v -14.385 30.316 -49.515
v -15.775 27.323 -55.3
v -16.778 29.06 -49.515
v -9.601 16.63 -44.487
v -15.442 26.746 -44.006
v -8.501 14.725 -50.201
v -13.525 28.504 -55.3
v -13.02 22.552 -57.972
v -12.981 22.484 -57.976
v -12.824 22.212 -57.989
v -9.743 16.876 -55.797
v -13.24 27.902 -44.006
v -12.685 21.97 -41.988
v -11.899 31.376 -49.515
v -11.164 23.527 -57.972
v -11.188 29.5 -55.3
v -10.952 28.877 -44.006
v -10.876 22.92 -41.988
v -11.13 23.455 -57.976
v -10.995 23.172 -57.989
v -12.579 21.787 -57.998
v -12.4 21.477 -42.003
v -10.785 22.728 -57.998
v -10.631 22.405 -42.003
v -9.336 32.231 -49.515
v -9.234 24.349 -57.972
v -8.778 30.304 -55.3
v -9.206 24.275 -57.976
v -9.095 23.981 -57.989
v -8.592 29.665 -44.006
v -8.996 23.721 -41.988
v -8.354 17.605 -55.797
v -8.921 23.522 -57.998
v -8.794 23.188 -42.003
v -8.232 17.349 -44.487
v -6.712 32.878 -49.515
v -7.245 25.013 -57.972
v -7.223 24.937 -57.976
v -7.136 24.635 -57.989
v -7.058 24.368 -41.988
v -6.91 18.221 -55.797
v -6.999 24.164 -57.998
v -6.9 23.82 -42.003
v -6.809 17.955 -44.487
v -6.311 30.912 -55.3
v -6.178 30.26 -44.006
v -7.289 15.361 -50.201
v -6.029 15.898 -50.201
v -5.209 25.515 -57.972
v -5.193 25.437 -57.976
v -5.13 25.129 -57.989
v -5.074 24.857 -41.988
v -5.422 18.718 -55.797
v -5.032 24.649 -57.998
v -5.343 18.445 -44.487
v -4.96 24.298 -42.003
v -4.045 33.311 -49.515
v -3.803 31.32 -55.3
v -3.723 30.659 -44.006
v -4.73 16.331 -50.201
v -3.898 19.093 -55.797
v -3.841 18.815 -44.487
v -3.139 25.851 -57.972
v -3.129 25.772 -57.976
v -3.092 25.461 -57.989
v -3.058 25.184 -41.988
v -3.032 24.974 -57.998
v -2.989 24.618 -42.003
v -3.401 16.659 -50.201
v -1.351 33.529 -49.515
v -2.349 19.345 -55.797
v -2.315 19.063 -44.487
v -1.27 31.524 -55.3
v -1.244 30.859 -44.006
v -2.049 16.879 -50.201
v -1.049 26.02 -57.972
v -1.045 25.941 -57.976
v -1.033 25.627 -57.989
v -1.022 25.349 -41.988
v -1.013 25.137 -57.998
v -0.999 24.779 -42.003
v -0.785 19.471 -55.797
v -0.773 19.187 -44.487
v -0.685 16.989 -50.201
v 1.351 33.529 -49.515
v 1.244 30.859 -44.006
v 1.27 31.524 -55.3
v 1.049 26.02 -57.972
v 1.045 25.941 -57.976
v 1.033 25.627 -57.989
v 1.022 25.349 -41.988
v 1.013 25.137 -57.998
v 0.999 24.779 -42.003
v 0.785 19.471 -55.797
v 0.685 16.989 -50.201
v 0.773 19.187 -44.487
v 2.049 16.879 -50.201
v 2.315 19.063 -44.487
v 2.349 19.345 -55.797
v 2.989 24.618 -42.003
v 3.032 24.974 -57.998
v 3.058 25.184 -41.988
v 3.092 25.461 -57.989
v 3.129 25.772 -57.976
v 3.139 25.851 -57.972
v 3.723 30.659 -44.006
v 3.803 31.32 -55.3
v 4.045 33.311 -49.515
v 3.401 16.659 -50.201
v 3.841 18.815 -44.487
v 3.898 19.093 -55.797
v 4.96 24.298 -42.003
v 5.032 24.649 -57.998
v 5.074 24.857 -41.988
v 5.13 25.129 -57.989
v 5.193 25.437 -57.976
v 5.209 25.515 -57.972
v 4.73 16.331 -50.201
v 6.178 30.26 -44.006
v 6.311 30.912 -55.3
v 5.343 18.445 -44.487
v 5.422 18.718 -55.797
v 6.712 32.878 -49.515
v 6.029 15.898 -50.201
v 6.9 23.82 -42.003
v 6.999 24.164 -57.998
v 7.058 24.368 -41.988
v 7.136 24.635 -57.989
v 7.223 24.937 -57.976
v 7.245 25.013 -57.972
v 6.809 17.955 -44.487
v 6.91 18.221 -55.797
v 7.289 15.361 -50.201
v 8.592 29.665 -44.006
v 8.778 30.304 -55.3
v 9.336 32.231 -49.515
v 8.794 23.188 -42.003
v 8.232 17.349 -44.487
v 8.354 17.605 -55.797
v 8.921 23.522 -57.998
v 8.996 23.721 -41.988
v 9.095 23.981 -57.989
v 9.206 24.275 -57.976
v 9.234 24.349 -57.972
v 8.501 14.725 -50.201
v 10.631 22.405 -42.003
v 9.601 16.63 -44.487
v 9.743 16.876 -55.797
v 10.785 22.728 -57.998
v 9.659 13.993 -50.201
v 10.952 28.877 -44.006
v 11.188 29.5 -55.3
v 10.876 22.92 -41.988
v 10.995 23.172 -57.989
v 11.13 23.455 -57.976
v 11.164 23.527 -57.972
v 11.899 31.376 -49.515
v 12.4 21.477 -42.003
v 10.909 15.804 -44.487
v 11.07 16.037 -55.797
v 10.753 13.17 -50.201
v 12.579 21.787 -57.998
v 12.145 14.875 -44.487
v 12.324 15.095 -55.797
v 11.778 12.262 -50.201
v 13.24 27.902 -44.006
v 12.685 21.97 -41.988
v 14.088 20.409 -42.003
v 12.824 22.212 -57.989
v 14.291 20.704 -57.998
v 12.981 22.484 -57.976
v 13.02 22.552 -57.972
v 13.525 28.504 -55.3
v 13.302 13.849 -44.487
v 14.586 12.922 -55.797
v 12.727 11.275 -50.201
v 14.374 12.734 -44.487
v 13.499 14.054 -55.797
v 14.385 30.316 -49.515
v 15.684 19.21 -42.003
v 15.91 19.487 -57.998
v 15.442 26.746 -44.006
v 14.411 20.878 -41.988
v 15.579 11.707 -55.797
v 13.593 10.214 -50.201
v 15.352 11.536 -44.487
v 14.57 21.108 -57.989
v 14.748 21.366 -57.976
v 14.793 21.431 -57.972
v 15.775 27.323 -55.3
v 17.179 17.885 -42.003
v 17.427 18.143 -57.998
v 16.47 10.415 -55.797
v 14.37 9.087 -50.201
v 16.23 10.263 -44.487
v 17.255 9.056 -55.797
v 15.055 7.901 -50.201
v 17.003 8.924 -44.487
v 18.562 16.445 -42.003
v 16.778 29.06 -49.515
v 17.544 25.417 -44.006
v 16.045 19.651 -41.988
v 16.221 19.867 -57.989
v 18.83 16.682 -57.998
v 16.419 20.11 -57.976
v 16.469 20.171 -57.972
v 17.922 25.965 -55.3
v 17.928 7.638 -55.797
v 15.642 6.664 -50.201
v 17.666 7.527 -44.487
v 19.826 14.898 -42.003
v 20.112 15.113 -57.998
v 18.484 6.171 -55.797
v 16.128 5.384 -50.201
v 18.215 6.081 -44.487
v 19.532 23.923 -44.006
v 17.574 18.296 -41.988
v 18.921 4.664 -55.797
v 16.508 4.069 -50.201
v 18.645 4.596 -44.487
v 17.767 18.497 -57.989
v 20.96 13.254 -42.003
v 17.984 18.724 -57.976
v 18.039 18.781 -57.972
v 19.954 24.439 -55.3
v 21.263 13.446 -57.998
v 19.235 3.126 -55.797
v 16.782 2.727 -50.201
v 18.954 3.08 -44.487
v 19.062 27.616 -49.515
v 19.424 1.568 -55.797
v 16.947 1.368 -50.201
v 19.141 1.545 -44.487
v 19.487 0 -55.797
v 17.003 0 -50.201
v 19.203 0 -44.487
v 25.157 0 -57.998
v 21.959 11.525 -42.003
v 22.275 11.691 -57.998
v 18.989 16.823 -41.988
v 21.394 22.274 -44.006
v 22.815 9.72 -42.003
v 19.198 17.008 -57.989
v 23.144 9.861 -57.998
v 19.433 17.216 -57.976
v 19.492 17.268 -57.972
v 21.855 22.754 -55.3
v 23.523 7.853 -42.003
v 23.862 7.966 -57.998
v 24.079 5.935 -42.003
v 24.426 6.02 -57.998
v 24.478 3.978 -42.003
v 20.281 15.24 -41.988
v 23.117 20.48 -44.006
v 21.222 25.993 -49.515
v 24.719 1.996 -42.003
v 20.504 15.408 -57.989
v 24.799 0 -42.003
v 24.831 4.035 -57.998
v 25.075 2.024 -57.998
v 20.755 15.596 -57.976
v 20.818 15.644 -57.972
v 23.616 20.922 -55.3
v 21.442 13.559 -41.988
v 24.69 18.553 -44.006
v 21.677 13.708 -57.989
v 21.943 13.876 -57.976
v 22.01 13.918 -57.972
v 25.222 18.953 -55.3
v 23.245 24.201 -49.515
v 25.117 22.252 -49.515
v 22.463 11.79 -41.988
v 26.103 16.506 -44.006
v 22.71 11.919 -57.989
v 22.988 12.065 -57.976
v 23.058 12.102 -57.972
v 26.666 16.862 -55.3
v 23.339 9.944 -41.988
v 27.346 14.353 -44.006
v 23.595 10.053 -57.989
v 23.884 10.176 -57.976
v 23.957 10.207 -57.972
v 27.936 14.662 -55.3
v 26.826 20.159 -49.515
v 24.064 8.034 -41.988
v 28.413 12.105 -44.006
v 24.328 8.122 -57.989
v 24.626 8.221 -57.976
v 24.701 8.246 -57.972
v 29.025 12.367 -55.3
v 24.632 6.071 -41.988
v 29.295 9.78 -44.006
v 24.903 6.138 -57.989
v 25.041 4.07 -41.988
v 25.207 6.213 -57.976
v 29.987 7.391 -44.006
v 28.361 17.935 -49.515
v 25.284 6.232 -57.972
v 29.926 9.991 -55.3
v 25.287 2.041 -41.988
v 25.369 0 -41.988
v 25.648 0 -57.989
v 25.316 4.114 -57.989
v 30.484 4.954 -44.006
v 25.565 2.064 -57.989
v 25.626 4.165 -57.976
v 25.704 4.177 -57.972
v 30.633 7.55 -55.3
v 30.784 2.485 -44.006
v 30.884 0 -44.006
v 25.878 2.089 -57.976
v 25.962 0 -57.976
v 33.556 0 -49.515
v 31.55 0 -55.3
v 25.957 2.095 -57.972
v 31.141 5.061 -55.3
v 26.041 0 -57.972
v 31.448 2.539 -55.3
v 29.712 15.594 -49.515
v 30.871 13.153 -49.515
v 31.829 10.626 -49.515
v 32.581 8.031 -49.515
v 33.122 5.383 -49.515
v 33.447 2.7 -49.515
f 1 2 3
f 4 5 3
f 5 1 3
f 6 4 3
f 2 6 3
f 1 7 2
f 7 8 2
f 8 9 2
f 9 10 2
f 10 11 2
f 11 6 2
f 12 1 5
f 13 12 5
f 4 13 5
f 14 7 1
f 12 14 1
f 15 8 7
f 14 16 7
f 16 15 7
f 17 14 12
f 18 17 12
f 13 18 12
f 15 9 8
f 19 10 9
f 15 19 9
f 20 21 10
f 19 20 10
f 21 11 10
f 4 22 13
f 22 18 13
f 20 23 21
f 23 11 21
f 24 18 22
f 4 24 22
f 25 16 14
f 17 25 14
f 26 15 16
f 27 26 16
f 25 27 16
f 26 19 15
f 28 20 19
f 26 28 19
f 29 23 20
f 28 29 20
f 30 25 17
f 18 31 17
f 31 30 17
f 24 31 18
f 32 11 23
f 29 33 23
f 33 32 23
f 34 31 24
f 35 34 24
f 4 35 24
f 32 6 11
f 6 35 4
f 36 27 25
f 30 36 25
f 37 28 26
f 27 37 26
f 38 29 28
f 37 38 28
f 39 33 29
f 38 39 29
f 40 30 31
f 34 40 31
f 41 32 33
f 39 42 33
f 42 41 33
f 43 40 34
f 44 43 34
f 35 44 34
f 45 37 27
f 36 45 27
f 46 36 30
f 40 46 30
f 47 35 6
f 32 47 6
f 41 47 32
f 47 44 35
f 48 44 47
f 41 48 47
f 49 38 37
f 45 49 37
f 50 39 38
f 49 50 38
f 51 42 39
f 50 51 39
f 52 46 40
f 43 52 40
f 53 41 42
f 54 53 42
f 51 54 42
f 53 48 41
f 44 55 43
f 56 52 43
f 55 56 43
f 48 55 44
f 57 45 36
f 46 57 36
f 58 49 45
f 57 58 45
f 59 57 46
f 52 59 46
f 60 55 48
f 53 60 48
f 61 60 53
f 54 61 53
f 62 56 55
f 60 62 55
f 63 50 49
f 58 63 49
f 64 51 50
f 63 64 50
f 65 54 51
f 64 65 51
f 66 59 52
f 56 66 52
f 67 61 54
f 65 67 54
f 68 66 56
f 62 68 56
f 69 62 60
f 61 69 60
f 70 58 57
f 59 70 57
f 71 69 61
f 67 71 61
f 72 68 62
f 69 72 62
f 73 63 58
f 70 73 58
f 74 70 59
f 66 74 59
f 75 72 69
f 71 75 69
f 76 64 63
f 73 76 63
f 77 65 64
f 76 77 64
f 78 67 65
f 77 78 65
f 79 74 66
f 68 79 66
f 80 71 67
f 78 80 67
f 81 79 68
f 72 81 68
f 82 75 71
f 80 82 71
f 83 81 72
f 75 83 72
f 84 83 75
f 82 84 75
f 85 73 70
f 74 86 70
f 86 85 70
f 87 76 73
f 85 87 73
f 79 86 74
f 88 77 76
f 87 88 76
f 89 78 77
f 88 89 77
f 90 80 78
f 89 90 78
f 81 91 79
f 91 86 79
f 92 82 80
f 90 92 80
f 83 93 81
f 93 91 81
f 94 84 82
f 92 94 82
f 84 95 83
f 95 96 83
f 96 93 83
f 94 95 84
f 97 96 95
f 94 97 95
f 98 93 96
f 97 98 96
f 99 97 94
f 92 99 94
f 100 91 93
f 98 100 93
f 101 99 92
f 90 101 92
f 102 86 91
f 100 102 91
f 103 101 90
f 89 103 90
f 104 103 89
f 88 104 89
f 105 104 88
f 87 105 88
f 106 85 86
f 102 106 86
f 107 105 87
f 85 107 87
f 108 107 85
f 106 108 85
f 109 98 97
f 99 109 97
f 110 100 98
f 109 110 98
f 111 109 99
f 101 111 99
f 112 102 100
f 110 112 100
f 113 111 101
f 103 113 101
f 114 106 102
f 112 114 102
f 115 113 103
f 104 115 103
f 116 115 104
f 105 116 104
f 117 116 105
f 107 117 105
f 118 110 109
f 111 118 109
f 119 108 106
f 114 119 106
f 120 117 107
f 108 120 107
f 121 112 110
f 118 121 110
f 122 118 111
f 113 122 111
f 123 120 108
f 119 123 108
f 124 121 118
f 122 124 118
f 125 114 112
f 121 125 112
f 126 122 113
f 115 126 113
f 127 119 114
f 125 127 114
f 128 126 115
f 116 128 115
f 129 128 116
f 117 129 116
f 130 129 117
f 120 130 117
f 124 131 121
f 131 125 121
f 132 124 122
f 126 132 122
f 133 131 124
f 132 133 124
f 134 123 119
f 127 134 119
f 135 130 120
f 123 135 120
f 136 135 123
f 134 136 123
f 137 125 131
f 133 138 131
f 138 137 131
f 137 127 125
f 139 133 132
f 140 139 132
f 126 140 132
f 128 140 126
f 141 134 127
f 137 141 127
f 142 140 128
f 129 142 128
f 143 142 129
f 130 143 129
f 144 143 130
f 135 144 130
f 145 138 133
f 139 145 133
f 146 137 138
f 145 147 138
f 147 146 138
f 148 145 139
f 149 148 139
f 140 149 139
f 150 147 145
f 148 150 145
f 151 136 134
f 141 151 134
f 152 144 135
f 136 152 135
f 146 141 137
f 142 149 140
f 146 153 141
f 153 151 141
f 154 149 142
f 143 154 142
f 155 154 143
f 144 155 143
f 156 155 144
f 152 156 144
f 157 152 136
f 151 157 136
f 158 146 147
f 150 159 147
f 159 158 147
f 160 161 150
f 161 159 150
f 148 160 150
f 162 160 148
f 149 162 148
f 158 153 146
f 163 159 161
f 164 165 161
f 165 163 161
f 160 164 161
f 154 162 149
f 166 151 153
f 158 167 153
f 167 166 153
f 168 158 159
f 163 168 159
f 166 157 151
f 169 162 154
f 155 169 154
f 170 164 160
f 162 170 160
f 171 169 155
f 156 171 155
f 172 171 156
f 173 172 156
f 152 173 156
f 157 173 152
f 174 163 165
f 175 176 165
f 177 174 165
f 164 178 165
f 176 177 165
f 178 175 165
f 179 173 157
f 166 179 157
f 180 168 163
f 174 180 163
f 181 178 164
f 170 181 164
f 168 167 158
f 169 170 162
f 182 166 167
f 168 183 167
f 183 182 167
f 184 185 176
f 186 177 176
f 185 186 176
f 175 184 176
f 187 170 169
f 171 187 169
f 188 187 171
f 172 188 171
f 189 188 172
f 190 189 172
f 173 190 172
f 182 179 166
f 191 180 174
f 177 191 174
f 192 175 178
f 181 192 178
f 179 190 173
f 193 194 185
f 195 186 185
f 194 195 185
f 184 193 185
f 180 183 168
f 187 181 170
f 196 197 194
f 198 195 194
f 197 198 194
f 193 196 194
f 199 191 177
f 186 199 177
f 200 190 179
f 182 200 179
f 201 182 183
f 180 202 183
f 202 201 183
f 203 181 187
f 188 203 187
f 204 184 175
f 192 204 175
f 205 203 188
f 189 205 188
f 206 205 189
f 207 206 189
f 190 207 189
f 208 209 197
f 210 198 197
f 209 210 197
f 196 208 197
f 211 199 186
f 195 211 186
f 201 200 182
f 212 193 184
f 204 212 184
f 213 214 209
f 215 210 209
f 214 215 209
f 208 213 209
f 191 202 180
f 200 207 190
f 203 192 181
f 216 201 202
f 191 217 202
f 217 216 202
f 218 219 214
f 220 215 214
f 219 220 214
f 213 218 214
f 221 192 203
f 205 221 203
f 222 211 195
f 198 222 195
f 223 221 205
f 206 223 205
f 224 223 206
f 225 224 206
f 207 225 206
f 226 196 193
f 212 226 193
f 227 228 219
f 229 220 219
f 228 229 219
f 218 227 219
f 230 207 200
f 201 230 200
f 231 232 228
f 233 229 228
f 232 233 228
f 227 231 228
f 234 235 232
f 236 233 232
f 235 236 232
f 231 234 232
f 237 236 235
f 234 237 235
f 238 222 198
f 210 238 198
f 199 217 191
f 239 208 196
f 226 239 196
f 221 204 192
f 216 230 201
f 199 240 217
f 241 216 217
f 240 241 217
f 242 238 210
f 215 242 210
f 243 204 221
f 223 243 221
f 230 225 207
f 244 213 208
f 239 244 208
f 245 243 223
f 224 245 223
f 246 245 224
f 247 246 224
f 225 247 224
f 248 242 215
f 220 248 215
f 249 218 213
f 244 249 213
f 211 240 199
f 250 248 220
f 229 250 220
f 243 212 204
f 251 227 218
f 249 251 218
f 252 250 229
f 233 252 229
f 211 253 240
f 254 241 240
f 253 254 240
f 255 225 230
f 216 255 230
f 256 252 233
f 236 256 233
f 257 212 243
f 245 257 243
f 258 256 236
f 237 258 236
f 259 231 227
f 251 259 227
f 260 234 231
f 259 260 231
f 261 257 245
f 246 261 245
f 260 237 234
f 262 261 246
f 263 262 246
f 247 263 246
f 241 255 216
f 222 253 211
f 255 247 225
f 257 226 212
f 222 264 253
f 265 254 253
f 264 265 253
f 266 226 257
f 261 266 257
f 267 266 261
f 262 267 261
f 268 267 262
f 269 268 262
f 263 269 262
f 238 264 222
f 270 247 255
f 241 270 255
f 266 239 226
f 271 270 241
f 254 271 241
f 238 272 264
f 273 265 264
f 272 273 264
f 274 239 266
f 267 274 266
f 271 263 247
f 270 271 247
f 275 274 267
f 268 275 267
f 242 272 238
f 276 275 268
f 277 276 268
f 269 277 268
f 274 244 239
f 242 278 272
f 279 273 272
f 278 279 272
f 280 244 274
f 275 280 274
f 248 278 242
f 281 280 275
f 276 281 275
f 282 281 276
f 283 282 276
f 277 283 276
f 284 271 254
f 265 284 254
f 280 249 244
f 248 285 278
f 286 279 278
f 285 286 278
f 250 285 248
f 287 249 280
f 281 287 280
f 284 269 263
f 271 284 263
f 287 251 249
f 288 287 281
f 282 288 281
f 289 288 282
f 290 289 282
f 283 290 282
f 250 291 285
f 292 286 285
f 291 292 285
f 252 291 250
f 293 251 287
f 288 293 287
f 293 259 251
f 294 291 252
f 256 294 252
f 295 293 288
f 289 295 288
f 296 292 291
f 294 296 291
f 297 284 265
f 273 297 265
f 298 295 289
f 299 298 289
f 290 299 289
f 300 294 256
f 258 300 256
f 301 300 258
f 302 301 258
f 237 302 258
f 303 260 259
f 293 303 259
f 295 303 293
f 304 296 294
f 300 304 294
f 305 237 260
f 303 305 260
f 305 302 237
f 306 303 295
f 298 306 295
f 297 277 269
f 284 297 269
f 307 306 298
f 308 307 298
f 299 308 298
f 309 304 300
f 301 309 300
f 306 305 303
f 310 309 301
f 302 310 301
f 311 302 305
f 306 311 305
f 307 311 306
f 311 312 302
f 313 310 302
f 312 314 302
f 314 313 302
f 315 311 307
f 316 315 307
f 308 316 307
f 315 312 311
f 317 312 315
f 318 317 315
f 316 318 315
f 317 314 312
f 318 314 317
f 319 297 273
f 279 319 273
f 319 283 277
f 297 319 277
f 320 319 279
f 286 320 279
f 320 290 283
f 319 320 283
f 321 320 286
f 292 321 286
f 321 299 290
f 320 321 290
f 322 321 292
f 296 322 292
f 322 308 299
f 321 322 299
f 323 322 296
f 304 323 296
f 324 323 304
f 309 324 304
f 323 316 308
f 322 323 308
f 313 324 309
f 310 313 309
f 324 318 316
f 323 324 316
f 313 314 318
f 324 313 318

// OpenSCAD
// Start: lazy_union
default_5_default_5();
// End: lazy_union

// Modules.

// 'PartMaterial undef-default - default 5.0'
module default_5_default_5() {
  // 'None : _combine_solids_and_holes'
  union() {
    // 'offset_ex : _combine_solids_and_holes'
    union() {
      // 'offset_ex'
      polyhedron(points=[[25.64781729, 0.0, -57.98882087], [25.961714750000002, 0.0, -57.97648779], [26.04094706, 0.0, -57.97181521], [31.55004704, 0.0, -55.29970941], [33.556104850000004, 0.0, -49.51472332], [30.88399905, 0.0, -44.00562334], [25.36919932, 0.0, -41.98821032], [24.79921931, 0.0, -42.00251995], [19.20295424, 0.0, -44.486901010000004], [17.00251995, 0.0, -50.20078069], [19.48690101, 0.0, -55.79704576], [25.15706959, 0.0, -57.99845792], [25.56464932149845, 2.063791852399815, -57.98882087], [25.87752890875822, 2.0890501039349108, -57.97648779], [25.95650429279107, 2.0954256560521105, -57.97181521], [31.4477399590981, 2.5387240281600936, -55.29970941], [33.44729274175531, 2.700144616778184, -49.51472332], [30.7838517574975, 2.4851294318041215, -44.00562334], [25.28693482372343, 2.0413724203710952, -41.98821032], [24.718803083265524, 1.9955080847292703, -42.00251995], [19.140684976486817, 1.5451958369171026, -44.486901010000004], [16.947386016860204, 1.3681344399141775, -50.20078069], [19.42371099460542, 1.5680440591971998, -55.79704576], [25.075492965073394, 2.0243030688751897, -57.99845792], [25.315684792183703, 4.114199222694708, -57.98882087], [25.625517362518078, 4.164551916311306, -57.97648779], [25.703723634912986, 4.177261672643725, -57.97181521], [31.141482217070504, 5.060983456808986, -55.29970941], [33.12156210529785, 5.3827777595858, -49.51472332], [30.48405937361155, 4.95414184562035, -44.00562334], [25.040674851719558, 4.069505757257019, -41.98821032], [24.478075933150702, 3.978074533789601, -42.00251995], [18.954281026015824, 3.080370485891357, -44.486901010000004], [16.782341782153853, 2.727396002989121, -50.20078069], [19.23455075991951, 3.125918750962481, -55.79704576], [24.831292146009748, 4.035477755559708, -57.99845792], [24.902538332563918, 6.137924432282259, -57.98882087], [25.207314502861745, 6.213045011440337, -57.97648779], [25.284244465932005, 6.232006544341024, -57.97181521], [30.633260012895033, 7.550420465681294, -55.29970941], [32.58102542879816, 8.030501523080689, -49.51472332], [29.986566166991462, 7.391024748507052, -44.00562334], [24.632016494404564, 6.071246787709258, -41.98821032], [24.078599067598645, 5.93484164298548, -42.00251995], [18.644951289734912, 4.595567750229174, -44.486901010000004], [16.508457621075706, 4.068969356396703, -50.20078069], [18.92064708265097, 4.66352066011403, -55.79704576], [24.426050868828263, 6.020480820459167, -57.99845792], [24.327889355967077, 8.121842846611019, -57.98882087], [24.62563253581173, 8.221244125528598, -57.97648779], [24.700787269226378, 8.246334462180553, -57.97181521], [29.92636936258667, 9.990890100498884, -55.29970941], [31.829188300024356, 10.626144402641362, -49.51472332], [29.294598571986022, 9.779974019730082, -44.00562334], [24.06361005804074, 8.03361345301408, -41.98821032], [23.522963247374346, 7.853119026740437, -42.00251995], [18.21470188968345, 6.08096099424228, -44.486901010000004], [16.127509777508358, 5.384153882136012, -50.20078069], [18.484035748601634, 6.170877848244588, -55.79704576], [23.86239727871533, 7.966438756989332, -57.99845792], [23.59546468151737, 10.053087993471916, -57.98882087], [23.884243892134094, 10.176125316711806, -57.97648779], [23.957135988607696, 10.207181736653888, -57.97181521], [29.025394723268935, 12.366564979194695, -55.29970941], [30.87092667126018, 13.152872658163723, -49.51472332], [28.412644263978656, 12.105496406550278, -44.00562334], [23.33914187648342, 9.94387905232492, -41.98821032], [22.814771983986972, 9.72046592011721, -42.00251995], [17.66632315832106, 7.526916872750954, -44.486901010000004], [15.64196884439906, 6.664420103879793, -50.20078069], [17.92754834981438, 7.638214525568572, -55.79704576], [23.143986885494524, 9.860731281206288, -57.99845792], [22.71001436428308, 11.91913500700781, -57.98882087], [22.98795676167732, 12.065010430315494, -57.97648779], [23.058113487993243, 12.101831520747048, -57.97181521], [27.936179261210217, 14.662037938558909, -55.29970941], [29.712455236883404, 15.594299487325287, -49.51472332], [27.34642305509051, 14.352510003912734, -44.00562334], [22.463310403891317, 11.789654780201015, -41.98821032], [21.95861816953494, 11.524771861952276, -42.00251995], [17.003371542150855, 8.924057807024134, -44.486901010000004], [15.054983741016413, 7.901465003901456, -50.20078069], [17.254793920612123, 9.056014450670116, -55.79704576], [22.275478856242625, 11.691073179190626, -57.99845792], [21.67728088934672, 13.707881856274748, -57.98882087], [21.9425839104161, 13.875649321553068, -57.97648779], [22.009550273282834, 13.917996283573231, -57.97181521], [26.66578695664835, 16.86242195560458, -55.29970941], [28.36128712868805, 17.934591300286364, -49.51472332], [26.102849799003977, 16.506442066388473, -44.00562334], [21.44179574344838, 13.558970072764648, -41.98821032], [20.96005429003823, 13.254335235843666, -42.00251995], [16.23014653679918, 10.26332280197596, -44.486901010000004], [14.370361291000577, 9.087265871331168, -50.20078069], [16.470135531625363, 10.41508264698033, -55.79704576], [21.2625057988033, 13.44559398137393, -57.99845792], [20.503961929585696, 15.407727831556581, -57.98882087], [20.754904982433438, 15.596299302415535, -57.97648779], [20.81824667929068, 15.643897499725739, -57.97181521], [25.222456791168053, 18.95344669562434, -55.29970941], [26.826185190341633, 20.158570406596027, -49.51472332], [24.689989545483105, 18.553323518020587, -44.00562334], [20.281222809715022, 15.240350241401392, -41.98821032], [19.82555641543587, 14.897939159623608, -42.00251995], [15.35166280313658, 11.536026210195896, -44.486901010000004], [13.59254153365116, 10.214132332514406, -50.20078069], [15.578661993604879, 11.706605035728757, -55.79704576], [20.111637232163783, 15.112914947089001, -57.99845792], [19.197666908693606, 17.007648779419025, -57.98882087], [19.432622531327215, 17.21580129750926, -57.97648779], [19.491928766964637, 17.268342037535017, -57.97181521], [23.615549314743834, 20.92155106078693, -55.29970941], [25.11710514698142, 22.25181344833884, -49.51472332], [23.11700523543108, 20.47987954714219, -44.00562334], [18.98911836351499, 16.82289089051897, -41.98821032], [18.562482199787322, 16.444924231143656, -42.00251995], [14.37361764527782, 12.733914061705146, -44.486901010000004], [12.726568928568573, 11.27475622603615, -50.20078069], [14.586154854531287, 12.922205598626435, -55.79704576], [18.830336980603356, 16.68222286006947, -57.99845792], [17.766867651147578, 18.497268598574998, -57.98882087], [17.984312066194384, 18.723652214942007, -57.97648779], [18.039198216916205, 18.78079475082271, -57.97181521], [21.855485938981452, 22.753971139060468, -55.29970941], [23.24513103851659, 24.200744941145643, -49.51472332], [21.394098275702333, 22.27361569862404, -44.00562334], [17.57386219800317, 18.296328636737034, -41.98821032], [17.179023164062528, 17.88525765858798, -42.00251995], [13.302354061378423, 13.84921759411928, -44.486901010000004], [11.778059640397817, 12.26225899895203, -50.20078069], [13.499050904057812, 14.05400069955865, -55.79704576], [17.426914767928753, 18.14334015630665, -57.99845792], [16.22084343917566, 19.86692653288311, -57.98882087], [16.4193664361638, 20.11007306290421, -57.97648779], [16.469476544221035, 20.171446803367274, -57.97181521], [19.95368135026462, 24.438822983079906, -55.29970941], [21.222403335376114, 25.99272531641903, -49.51472332], [19.532442379064523, 23.92289890521057, -44.00562334], [16.044632792491388, 19.65110767086676, -41.98821032], [15.684151570985083, 19.209598326978185, -42.00251995], [12.144819606857643, 14.874703636053399, -44.486901010000004], [10.753165115845645, 13.170236316843686, -50.20078069], [12.324400428459388, 15.094650212990334, -55.79704576], [15.910472325726593, 19.486790929457598, -57.99845792], [14.569620833050811, 21.10773982505836, -57.98882087], [14.747934914165267, 21.36607237018336, -57.97648779], [14.79294399627834, 21.431279282970845, -57.97181521], [17.922469481133653, 25.96517968210591, -55.29970941], [19.062040202899365, 27.616132893785874, -49.51472332], [17.54411109838351, 25.41703293242501, -44.00562334], [14.411347786488014, 20.87844173100032, -41.98821032], [14.087562236465542, 20.409357378888416, -42.00251995], [10.908521336835577, 15.80372151701418, -44.486901010000004], [9.658532189188175, 13.992799598385016, -50.20078069], [11.069821486820757, 16.037405127496797, -55.79704576], [14.290844365141414, 20.703862385733938, -57.99845792], [12.823908645000003, 22.211661324761756, -57.98882087], [12.980857375000005, 22.483504499305166, -57.97648779], [13.020473530000004, 22.552121692565688, -57.97181521], [15.775023520000003, 27.32314222723403, -55.29970941], [16.778052425000006, 29.06043925215421, -49.51472332], [15.441999525000004, 26.746327747754467, -44.00562334], [12.684599660000003, 21.970371084790905, -41.98821032], [12.399609655000004, 21.4767539164816, -42.00251995], [9.601477120000002, 16.630246199550097, -44.486901010000004], [8.501259975000002, 14.724614205051722, -50.20078069], [9.743450505000002, 16.876151315692635, -55.79704576], [12.578534795000003, 21.786661349712972, -57.99845792], [10.995028488447641, 23.171531677458173, -57.98882087], [11.129593994592955, 23.455122474118273, -57.97648779], [11.163560296512735, 23.526704939022956, -57.97181521], [13.52527047796445, 28.503903710266002, -55.29970941], [14.385252538855953, 30.31627751056406, -49.51472332], [13.239740659113993, 27.90216236422913, -44.00562334], [10.875587037235421, 22.919814151371412, -41.98821032], [10.631240846799983, 22.404865463617686, -42.00251995], [8.23216363965124, 17.34891735393128, -44.486901010000004], [7.288853827672029, 15.360934038299193, -50.20078069], [8.353889507784665, 17.605449186693996, -55.79704576], [10.784648599931982, 22.72816545460913, -57.99845792], [9.094841353008047, 23.981125755577814, -57.98882087], [9.206150926354287, 24.274624979215513, -57.97648779], [9.234247090691955, 24.348708476010998, -57.97181521], [11.18780086680589, 29.49980643988889, -55.29970941], [11.899158769921739, 31.375503076004826, -49.51472332], [10.951616994547033, 28.87704075083092, -44.00562334], [8.996042059228175, 23.720613428123777, -41.98821032], [8.793924362165622, 23.187672860767783, -42.00251995], [6.8094614191581835, 17.955074121944754, -44.486901010000004], [6.029176666308211, 15.897632319832805, -50.20078069], [6.910150331460127, 18.220568963952815, -55.79704576], [8.920819820283162, 23.522268685017306, -57.99845792], [7.1356706814163475, 24.63519303085726, -57.98882087], [7.223002436667365, 24.936697226382346, -57.97648779], [7.2450462490158065, 25.012801295163737, -57.97181521], [8.777774073913587, 30.304391604741763, -55.29970941], [9.335894390281581, 32.23124646422634, -49.51472332], [8.592467891289136, 29.664640447131095, -44.00562334], [7.058154296401398, 24.367575424446294, -41.98821032], [6.899575903536124, 23.820099301573464, -42.00251995], [5.342597228356493, 18.444785344348453, -44.486901010000004], [4.730397980677893, 16.331228355348735, -50.20078069], [5.421596178593162, 18.71752135967268, -55.79704576], [6.999136100899515, 24.16382097676582, -57.99845792], [5.1302224472734785, 25.129491626030045, -57.98882087], [5.193010004484517, 25.437045423037862, -57.97648779], [5.208858502261745, 25.514676499715573, -57.97181521], [6.310820047842838, 30.912441161285816, -55.29970941], [6.712083153042941, 32.8779578509802, -49.51472332], [6.177593336554948, 30.259853566872277, -44.00562334], [5.074491694525755, 24.856504343533054, -41.98821032], [4.960481047587029, 24.298043257884096, -42.00251995], [3.841084244405635, 18.81487505594743, -44.486901010000004], [3.4009408489397868, 16.658910108172165, -50.20078069], [3.8978808940703513, 19.093083446871024, -55.79704576], [5.03206029811198, 24.648661617058803, -57.99845792], [3.0915027519316807, 25.4608158250285, -57.98882087], [3.129338909700659, 25.772424619127342, -57.97648779], [3.1388893093170194, 25.85107923637963, -57.97181521], [3.802937932100887, 31.32001167481904, -55.29970941], [4.044741480918551, 33.31144306475975, -49.51472332], [3.7226547184955563, 30.658819924570867, -44.00562334], [3.0579190667684033, 25.184229293726315, -41.98821032], [2.9892155685511077, 24.61840507974082, -42.00251995], [2.3146603551844835, 19.062943082946852, -44.486901010000004], [2.0494273107479044, 16.8785524363942, -50.20078069], [2.3488863562095053, 19.34481956129733, -55.79704576], [3.0323496533307455, 24.97364622829529, -57.99845792], [1.0327334749363646, 25.62701686328256, -57.98882087], [1.0453728512612224, 25.940659751868562, -57.97648779], [1.048563214710413, 26.019827804320283, -57.97181521], [1.2703923045618735, 31.524459894163492, -55.29970941], [1.3511681081953584, 33.52889078761165, -49.51472332], [1.2435732560865371, 30.858952070301207, -44.00562334], [1.021514660442938, 25.348624852965663, -41.98821032], [0.998563879496714, 24.779107097795944, -42.00251995], [0.7732250053516815, 19.187380609000094, -44.486901010000004], [0.6846224500158378, 16.988730875232626, -50.20078069], [0.7846583889867634, 19.471097097650446, -55.79704576], [1.0129730574393314, 25.136667160564556, -57.99845792], [-1.032733474936356, 25.627016863282563, -57.98882087], [-1.0453728512612135, 25.940659751868566, -57.97648779], [-1.048563214710404, 26.019827804320283, -57.97181521], [-1.2703923045618628, 31.524459894163495, -55.29970941], [-1.351168108195347, 33.52889078761166, -49.51472332], [-1.2435732560865267, 30.85895207030121, -44.00562334], [-1.0215146604429293, 25.348624852965667, -41.98821032], [-0.9985638794967056, 24.779107097795947, -42.00251995], [-0.7732250053516749, 19.187380609000098, -44.486901010000004], [-0.684622450015832, 16.988730875232626, -50.20078069], [-0.7846583889867568, 19.47109709765045, -55.79704576], [-1.0129730574393228, 25.13666716056456, -57.99845792], [-3.091502751931672, 25.4608158250285, -57.98882087], [-3.12933890970065, 25.772424619127342, -57.97648779], [-3.1388893093170105, 25.85107923637963, -57.97181521], [-3.802937932100876, 31.32001167481904, -55.29970941], [-4.04474148091854, 33.31144306475975, -49.51472332], [-3.7226547184955456, 30.658819924570867, -44.00562334], [-3.057919066768395, 25.184229293726315, -41.98821032], [-2.9892155685510993, 24.61840507974082, -42.00251995], [-2.314660355184477, 19.062943082946852, -44.486901010000004], [-2.049427310747898, 16.8785524363942, -50.20078069], [-2.3488863562094986, 19.34481956129733, -55.79704576], [-3.0323496533307366, 24.97364622829529, -57.99845792], [-5.130222447273475, 25.129491626030045, -57.98882087], [-5.193010004484514, 25.437045423037862, -57.97648779], [-5.208858502261743, 25.514676499715573, -57.97181521], [-6.310820047842834, 30.912441161285816, -55.29970941], [-6.712083153042937, 32.8779578509802, -49.51472332], [-6.177593336554945, 30.259853566872277, -44.00562334], [-5.0744916945257525, 24.856504343533054, -41.98821032], [-4.9604810475870265, 24.298043257884096, -42.00251995], [-3.8410842444056326, 18.81487505594743, -44.486901010000004], [-3.400940848939785, 16.658910108172165, -50.20078069], [-3.8978808940703495, 19.093083446871024, -55.79704576], [-5.032060298111977, 24.648661617058803, -57.99845792], [-7.135670681416339, 24.635193030857263, -57.98882087], [-7.223002436667356, 24.93669722638235, -57.97648779], [-7.245046249015798, 25.012801295163737, -57.97181521], [-8.777774073913577, 30.304391604741767, -55.29970941], [-9.33589439028157, 32.23124646422634, -49.51472332], [-8.592467891289125, 29.6646404471311, -44.00562334], [-7.058154296401389, 24.367575424446297, -41.98821032], [-6.899575903536116, 23.820099301573467, -42.00251995], [-5.342597228356487, 18.444785344348457, -44.486901010000004], [-4.730397980677887, 16.331228355348735, -50.20078069], [-5.4215961785931555, 18.717521359672684, -55.79704576], [-6.9991361008995066, 24.163820976765823, -57.99845792], [-9.094841353008038, 23.981125755577818, -57.98882087], [-9.206150926354278, 24.274624979215517, -57.97648779], [-9.234247090691946, 24.348708476011, -57.97181521], [-11.18780086680588, 29.499806439888893, -55.29970941], [-11.899158769921728, 31.37550307600483, -49.51472332], [-10.951616994547022, 28.877040750830922, -44.00562334], [-8.996042059228166, 23.72061342812378, -41.98821032], [-8.793924362165615, 23.187672860767787, -42.00251995], [-6.809461419158177, 17.955074121944754, -44.486901010000004], [-6.029176666308206, 15.897632319832807, -50.20078069], [-6.9101503314601205, 18.220568963952815, -55.79704576], [-8.920819820283153, 23.52226868501731, -57.99845792], [-10.995028488447632, 23.17153167745818, -57.98882087], [-11.129593994592947, 23.45512247411828, -57.97648779], [-11.163560296512726, 23.526704939022963, -57.97181521], [-13.525270477964439, 28.50390371026601, -55.29970941], [-14.38525253885594, 30.316277510564067, -49.51472332], [-13.239740659113982, 27.902162364229138, -44.00562334], [-10.875587037235412, 22.91981415137142, -41.98821032], [-10.631240846799976, 22.40486546361769, -42.00251995], [-8.232163639651235, 17.348917353931288, -44.486901010000004], [-7.288853827672024, 15.360934038299197, -50.20078069], [-8.353889507784658, 17.605449186694, -55.79704576], [-10.784648599931975, 22.728165454609133, -57.99845792], [-12.823908644999994, 22.211661324761756, -57.98882087], [-12.980857374999996, 22.48350449930517, -57.97648779], [-13.020473529999995, 22.55212169256569, -57.97181521], [-15.775023519999992, 27.323142227234033, -55.29970941], [-16.778052424999995, 29.060439252154215, -49.51472332], [-15.441999524999993, 26.74632774775447, -44.00562334], [-12.684599659999995, 21.97037108479091, -41.98821032], [-12.399609654999995, 21.476753916481602, -42.00251995], [-9.601477119999997, 16.6302461995501, -44.486901010000004], [-8.501259974999996, 14.724614205051724, -50.20078069], [-9.743450504999997, 16.87615131569264, -55.79704576], [-12.578534794999994, 21.786661349712972, -57.99845792]], faces=[[0, 12, 13, 1], [1, 13, 14, 2], [2, 14, 15, 3], [3, 15, 16, 4], [4, 16, 17, 5], [5, 17, 18, 6], [6, 18, 19, 7], [7, 19, 20, 8], [8, 20, 21, 9], [9, 21, 22, 10], [10, 22, 23, 11], [11, 23, 12, 0], [12, 24, 25, 13], [13, 25, 26, 14], [14, 26, 27, 15], [15, 27, 28, 16], [16, 28, 29, 17], [17, 29, 30, 18], [18, 30, 31, 19], [19, 31, 32, 20], [20, 32, 33, 21], [21, 33, 34, 22], [22, 34, 35, 23], [23, 35, 24, 12], [24, 36, 37, 25], [25, 37, 38, 26], [26, 38, 39, 27], [27, 39, 40, 28], [28, 40, 41, 29], [29, 41, 42, 30], [30, 42, 43, 31], [31, 43, 44, 32], [32, 44, 45, 33], [33, 45, 46, 34], [34, 46, 47, 35], [35, 47, 36, 24], [36, 48, 49, 37], [37, 49, 50, 38], [38, 50, 51, 39], [39, 51, 52, 40], [40, 52, 53, 41], [41, 53, 54, 42], [42, 54, 55, 43], [43, 55, 56, 44], [44, 56, 57, 45], [45, 57, 58, 46], [46, 58, 59, 47], [47, 59, 48, 36], [48, 60, 61, 49], [49, 61, 62, 50], [50, 62, 63, 51], [51, 63, 64, 52], [52, 64, 65, 53], [53, 65, 66, 54], [54, 66, 67, 55], [55, 67, 68, 56], [56, 68, 69, 57], [57, 69, 70, 58], [58, 70, 71, 59], [59, 71, 60, 48], [60, 72, 73, 61], [61, 73, 74, 62], [62, 74, 75, 63], [63, 75, 76, 64], [64, 76, 77, 65], [65, 77, 78, 66], [66, 78, 79, 67], [67, 79, 80, 68], [68, 80, 81, 69], [69, 81, 82, 70], [70, 82, 83, 71], [71, 83, 72, 60], [72, 84, 85, 73], [73, 85, 86, 74], [74, 86, 87, 75], [75, 87, 88, 76], [76, 88, 89, 77], [77, 89, 90, 78], [78, 90, 91, 79], [79, 91, 92, 80], [80, 92, 93, 81], [81, 93, 94, 82], [82, 94, 95, 83], [83, 95, 84, 72], [84, 96, 97, 85], [85, 97, 98, 86], [86, 98, 99, 87], [87, 99, 100, 88], [88, 100, 101, 89], [89, 101, 102, 90], [90, 102, 103, 91], [91, 103, 104, 92], [92, 104, 105, 93], [93, 105, 106, 94], [94, 106, 107, 95], [95, 107, 96, 84], [96, 108, 109, 97], [97, 109, 110, 98], [98, 110, 111, 99], [99, 111, 112, 100], [100, 112, 113, 101], [101, 113, 114, 102], [102, 114, 115, 103], [103, 115, 116, 104], [104, 116, 117, 105], [105, 117, 118, 106], [106, 118, 119, 107], [107, 119, 108, 96], [108, 120, 121, 109], [109, 121, 122, 110], [110, 122, 123, 111], [111, 123, 124, 112], [112, 124, 125, 113], [113, 125, 126, 114], [114, 126, 127, 115], [115, 127, 128, 116], [116, 128, 129, 117], [117, 129, 130, 118], [118, 130, 131, 119], [119, 131, 120, 108], [120, 132, 133, 121], [121, 133, 134, 122], [122, 134, 135, 123], [123, 135, 136, 124], [124, 136, 137, 125], [125, 137, 138, 126], [126, 138, 139, 127], [127, 139, 140, 128], [128, 140, 141, 129], [129, 141, 142, 130], [130, 142, 143, 131], [131, 143, 132, 120], [132, 144, 145, 133], [133, 145, 146, 134], [134, 146, 147, 135], [135, 147, 148, 136], [136, 148, 149, 137], [137, 149, 150, 138], [138, 150, 151, 139], [139, 151, 152, 140], [140, 152, 153, 141], [141, 153, 154, 142], [142, 154, 155, 143], [143, 155, 144, 132], [144, 156, 157, 145], [145, 157, 158, 146], [146, 158, 159, 147], [147, 159, 160, 148], [148, 160, 161, 149], [149, 161, 162, 150], [150, 162, 163, 151], [151, 163, 164, 152], [152, 164, 165, 153], [153, 165, 166, 154], [154, 166, 167, 155], [155, 167, 156, 144], [156, 168, 169, 157], [157, 169, 170, 158], [158, 170, 171, 159], [159, 171, 172, 160], [160, 172, 173, 161], [161, 173, 174, 162], [162, 174, 175, 163], [163, 175, 176, 164], [164, 176, 177, 165], [165, 177, 178, 166], [166, 178, 179, 167], [167, 179, 168, 156], [168, 180, 181, 169], [169, 181, 182, 170], [170, 182, 183, 171], [171, 183, 184, 172], [172, 184, 185, 173], [173, 185, 186, 174], [174, 186, 187, 175], [175, 187, 188, 176], [176, 188, 189, 177], [177, 189, 190, 178], [178, 190, 191, 179], [179, 191, 180, 168], [180, 192, 193, 181], [181, 193, 194, 182], [182, 194, 195, 183], [183, 195, 196, 184], [184, 196, 197, 185], [185, 197, 198, 186], [186, 198, 199, 187], [187, 199, 200, 188], [188, 200, 201, 189], [189, 201, 202, 190], [190, 202, 203, 191], [191, 203, 192, 180], [192, 204, 205, 193], [193, 205, 206, 194], [194, 206, 207, 195], [195, 207, 208, 196], [196, 208, 209, 197], [197, 209, 210, 198], [198, 210, 211, 199], [199, 211, 212, 200], [200, 212, 213, 201], [201, 213, 214, 202], [202, 214, 215, 203], [203, 215, 204, 192], [204, 216, 217, 205], [205, 217, 218, 206], [206, 218, 219, 207], [207, 219, 220, 208], [208, 220, 221, 209], [209, 221, 222, 210], [210, 222, 223, 211], [211, 223, 224, 212], [212, 224, 225, 213], [213, 225, 226, 214], [214, 226, 227, 215], [215, 227, 216, 204], [216, 228, 229, 217], [217, 229, 230, 218], [218, 230, 231, 219], [219, 231, 232, 220], [220, 232, 233, 221], [221, 233, 234, 222], [222, 234, 235, 223], [223, 235, 236, 224], [224, 236, 237, 225], [225, 237, 238, 226], [226, 238, 239, 227], [227, 239, 228, 216], [228, 240, 241, 229], [229, 241, 242, 230], [230, 242, 243, 231], [231, 243, 244, 232], [232, 244, 245, 233], [233, 245, 246, 234], [234, 246, 247, 235], [235, 247, 248, 236], [236, 248, 249, 237], [237, 249, 250, 238], [238, 250, 251, 239], [239, 251, 240, 228], [240, 252, 253, 241], [241, 253, 254, 242], [242, 254, 255, 243], [243, 255, 256, 244], [244, 256, 257, 245], [245, 257, 258, 246], [246, 258, 259, 247], [247, 259, 260, 248], [248, 260, 261, 249], [249, 261, 262, 250], [250, 262, 263, 251], [251, 263, 252, 240], [252, 264, 265, 253], [253, 265, 266, 254], [254, 266, 267, 255], [255, 267, 268, 256], [256, 268, 269, 257], [257, 269, 270, 258], [258, 270, 271, 259], [259, 271, 272, 260], [260, 272, 273, 261], [261, 273, 274, 262], [262, 274, 275, 263], [263, 275, 264, 252], [264, 276, 277, 265], [265, 277, 278, 266], [266, 278, 279, 267], [267, 279, 280, 268], [268, 280, 281, 269], [269, 281, 282, 270], [270, 282, 283, 271], [271, 283, 284, 272], [272, 284, 285, 273], [273, 285, 286, 274], [274, 286, 287, 275], [275, 287, 276, 264], [276, 288, 289, 277], [277, 289, 290, 278], [278, 290, 291, 279], [279, 291, 292, 280], [280, 292, 293, 281], [281, 293, 294, 282], [282, 294, 295, 283], [283, 295, 296, 284], [284, 296, 297, 285], [285, 297, 298, 286], [286, 298, 299, 287], [287, 299, 288, 276], [288, 300, 301, 289], [289, 301, 302, 290], [290, 302, 303, 291], [291, 303, 304, 292], [292, 304, 305, 293], [293, 305, 306, 294], [294, 306, 307, 295], [295, 307, 308, 296], [296, 308, 309, 297], [297, 309, 310, 298], [298, 310, 311, 299], [299, 311, 300, 288], [300, 312, 313, 301], [301, 313, 314, 302], [302, 314, 315, 303], [303, 315, 316, 304], [304, 316, 317, 305], [305, 317, 318, 306], [306, 318, 319, 307], [307, 319, 320, 308], [308, 320, 321, 309], [309, 321, 322, 310], [310, 322, 323, 311], [311, 323, 312, 300], [0, 1, 2, 3, 4, 5, 6, 7, 8, 9, 10, 11], [323, 322, 321, 320, 319, 318, 317, 316, 315, 314, 313, 312]], convexity=10);
    }
  }
} // end module default_5_default_5
